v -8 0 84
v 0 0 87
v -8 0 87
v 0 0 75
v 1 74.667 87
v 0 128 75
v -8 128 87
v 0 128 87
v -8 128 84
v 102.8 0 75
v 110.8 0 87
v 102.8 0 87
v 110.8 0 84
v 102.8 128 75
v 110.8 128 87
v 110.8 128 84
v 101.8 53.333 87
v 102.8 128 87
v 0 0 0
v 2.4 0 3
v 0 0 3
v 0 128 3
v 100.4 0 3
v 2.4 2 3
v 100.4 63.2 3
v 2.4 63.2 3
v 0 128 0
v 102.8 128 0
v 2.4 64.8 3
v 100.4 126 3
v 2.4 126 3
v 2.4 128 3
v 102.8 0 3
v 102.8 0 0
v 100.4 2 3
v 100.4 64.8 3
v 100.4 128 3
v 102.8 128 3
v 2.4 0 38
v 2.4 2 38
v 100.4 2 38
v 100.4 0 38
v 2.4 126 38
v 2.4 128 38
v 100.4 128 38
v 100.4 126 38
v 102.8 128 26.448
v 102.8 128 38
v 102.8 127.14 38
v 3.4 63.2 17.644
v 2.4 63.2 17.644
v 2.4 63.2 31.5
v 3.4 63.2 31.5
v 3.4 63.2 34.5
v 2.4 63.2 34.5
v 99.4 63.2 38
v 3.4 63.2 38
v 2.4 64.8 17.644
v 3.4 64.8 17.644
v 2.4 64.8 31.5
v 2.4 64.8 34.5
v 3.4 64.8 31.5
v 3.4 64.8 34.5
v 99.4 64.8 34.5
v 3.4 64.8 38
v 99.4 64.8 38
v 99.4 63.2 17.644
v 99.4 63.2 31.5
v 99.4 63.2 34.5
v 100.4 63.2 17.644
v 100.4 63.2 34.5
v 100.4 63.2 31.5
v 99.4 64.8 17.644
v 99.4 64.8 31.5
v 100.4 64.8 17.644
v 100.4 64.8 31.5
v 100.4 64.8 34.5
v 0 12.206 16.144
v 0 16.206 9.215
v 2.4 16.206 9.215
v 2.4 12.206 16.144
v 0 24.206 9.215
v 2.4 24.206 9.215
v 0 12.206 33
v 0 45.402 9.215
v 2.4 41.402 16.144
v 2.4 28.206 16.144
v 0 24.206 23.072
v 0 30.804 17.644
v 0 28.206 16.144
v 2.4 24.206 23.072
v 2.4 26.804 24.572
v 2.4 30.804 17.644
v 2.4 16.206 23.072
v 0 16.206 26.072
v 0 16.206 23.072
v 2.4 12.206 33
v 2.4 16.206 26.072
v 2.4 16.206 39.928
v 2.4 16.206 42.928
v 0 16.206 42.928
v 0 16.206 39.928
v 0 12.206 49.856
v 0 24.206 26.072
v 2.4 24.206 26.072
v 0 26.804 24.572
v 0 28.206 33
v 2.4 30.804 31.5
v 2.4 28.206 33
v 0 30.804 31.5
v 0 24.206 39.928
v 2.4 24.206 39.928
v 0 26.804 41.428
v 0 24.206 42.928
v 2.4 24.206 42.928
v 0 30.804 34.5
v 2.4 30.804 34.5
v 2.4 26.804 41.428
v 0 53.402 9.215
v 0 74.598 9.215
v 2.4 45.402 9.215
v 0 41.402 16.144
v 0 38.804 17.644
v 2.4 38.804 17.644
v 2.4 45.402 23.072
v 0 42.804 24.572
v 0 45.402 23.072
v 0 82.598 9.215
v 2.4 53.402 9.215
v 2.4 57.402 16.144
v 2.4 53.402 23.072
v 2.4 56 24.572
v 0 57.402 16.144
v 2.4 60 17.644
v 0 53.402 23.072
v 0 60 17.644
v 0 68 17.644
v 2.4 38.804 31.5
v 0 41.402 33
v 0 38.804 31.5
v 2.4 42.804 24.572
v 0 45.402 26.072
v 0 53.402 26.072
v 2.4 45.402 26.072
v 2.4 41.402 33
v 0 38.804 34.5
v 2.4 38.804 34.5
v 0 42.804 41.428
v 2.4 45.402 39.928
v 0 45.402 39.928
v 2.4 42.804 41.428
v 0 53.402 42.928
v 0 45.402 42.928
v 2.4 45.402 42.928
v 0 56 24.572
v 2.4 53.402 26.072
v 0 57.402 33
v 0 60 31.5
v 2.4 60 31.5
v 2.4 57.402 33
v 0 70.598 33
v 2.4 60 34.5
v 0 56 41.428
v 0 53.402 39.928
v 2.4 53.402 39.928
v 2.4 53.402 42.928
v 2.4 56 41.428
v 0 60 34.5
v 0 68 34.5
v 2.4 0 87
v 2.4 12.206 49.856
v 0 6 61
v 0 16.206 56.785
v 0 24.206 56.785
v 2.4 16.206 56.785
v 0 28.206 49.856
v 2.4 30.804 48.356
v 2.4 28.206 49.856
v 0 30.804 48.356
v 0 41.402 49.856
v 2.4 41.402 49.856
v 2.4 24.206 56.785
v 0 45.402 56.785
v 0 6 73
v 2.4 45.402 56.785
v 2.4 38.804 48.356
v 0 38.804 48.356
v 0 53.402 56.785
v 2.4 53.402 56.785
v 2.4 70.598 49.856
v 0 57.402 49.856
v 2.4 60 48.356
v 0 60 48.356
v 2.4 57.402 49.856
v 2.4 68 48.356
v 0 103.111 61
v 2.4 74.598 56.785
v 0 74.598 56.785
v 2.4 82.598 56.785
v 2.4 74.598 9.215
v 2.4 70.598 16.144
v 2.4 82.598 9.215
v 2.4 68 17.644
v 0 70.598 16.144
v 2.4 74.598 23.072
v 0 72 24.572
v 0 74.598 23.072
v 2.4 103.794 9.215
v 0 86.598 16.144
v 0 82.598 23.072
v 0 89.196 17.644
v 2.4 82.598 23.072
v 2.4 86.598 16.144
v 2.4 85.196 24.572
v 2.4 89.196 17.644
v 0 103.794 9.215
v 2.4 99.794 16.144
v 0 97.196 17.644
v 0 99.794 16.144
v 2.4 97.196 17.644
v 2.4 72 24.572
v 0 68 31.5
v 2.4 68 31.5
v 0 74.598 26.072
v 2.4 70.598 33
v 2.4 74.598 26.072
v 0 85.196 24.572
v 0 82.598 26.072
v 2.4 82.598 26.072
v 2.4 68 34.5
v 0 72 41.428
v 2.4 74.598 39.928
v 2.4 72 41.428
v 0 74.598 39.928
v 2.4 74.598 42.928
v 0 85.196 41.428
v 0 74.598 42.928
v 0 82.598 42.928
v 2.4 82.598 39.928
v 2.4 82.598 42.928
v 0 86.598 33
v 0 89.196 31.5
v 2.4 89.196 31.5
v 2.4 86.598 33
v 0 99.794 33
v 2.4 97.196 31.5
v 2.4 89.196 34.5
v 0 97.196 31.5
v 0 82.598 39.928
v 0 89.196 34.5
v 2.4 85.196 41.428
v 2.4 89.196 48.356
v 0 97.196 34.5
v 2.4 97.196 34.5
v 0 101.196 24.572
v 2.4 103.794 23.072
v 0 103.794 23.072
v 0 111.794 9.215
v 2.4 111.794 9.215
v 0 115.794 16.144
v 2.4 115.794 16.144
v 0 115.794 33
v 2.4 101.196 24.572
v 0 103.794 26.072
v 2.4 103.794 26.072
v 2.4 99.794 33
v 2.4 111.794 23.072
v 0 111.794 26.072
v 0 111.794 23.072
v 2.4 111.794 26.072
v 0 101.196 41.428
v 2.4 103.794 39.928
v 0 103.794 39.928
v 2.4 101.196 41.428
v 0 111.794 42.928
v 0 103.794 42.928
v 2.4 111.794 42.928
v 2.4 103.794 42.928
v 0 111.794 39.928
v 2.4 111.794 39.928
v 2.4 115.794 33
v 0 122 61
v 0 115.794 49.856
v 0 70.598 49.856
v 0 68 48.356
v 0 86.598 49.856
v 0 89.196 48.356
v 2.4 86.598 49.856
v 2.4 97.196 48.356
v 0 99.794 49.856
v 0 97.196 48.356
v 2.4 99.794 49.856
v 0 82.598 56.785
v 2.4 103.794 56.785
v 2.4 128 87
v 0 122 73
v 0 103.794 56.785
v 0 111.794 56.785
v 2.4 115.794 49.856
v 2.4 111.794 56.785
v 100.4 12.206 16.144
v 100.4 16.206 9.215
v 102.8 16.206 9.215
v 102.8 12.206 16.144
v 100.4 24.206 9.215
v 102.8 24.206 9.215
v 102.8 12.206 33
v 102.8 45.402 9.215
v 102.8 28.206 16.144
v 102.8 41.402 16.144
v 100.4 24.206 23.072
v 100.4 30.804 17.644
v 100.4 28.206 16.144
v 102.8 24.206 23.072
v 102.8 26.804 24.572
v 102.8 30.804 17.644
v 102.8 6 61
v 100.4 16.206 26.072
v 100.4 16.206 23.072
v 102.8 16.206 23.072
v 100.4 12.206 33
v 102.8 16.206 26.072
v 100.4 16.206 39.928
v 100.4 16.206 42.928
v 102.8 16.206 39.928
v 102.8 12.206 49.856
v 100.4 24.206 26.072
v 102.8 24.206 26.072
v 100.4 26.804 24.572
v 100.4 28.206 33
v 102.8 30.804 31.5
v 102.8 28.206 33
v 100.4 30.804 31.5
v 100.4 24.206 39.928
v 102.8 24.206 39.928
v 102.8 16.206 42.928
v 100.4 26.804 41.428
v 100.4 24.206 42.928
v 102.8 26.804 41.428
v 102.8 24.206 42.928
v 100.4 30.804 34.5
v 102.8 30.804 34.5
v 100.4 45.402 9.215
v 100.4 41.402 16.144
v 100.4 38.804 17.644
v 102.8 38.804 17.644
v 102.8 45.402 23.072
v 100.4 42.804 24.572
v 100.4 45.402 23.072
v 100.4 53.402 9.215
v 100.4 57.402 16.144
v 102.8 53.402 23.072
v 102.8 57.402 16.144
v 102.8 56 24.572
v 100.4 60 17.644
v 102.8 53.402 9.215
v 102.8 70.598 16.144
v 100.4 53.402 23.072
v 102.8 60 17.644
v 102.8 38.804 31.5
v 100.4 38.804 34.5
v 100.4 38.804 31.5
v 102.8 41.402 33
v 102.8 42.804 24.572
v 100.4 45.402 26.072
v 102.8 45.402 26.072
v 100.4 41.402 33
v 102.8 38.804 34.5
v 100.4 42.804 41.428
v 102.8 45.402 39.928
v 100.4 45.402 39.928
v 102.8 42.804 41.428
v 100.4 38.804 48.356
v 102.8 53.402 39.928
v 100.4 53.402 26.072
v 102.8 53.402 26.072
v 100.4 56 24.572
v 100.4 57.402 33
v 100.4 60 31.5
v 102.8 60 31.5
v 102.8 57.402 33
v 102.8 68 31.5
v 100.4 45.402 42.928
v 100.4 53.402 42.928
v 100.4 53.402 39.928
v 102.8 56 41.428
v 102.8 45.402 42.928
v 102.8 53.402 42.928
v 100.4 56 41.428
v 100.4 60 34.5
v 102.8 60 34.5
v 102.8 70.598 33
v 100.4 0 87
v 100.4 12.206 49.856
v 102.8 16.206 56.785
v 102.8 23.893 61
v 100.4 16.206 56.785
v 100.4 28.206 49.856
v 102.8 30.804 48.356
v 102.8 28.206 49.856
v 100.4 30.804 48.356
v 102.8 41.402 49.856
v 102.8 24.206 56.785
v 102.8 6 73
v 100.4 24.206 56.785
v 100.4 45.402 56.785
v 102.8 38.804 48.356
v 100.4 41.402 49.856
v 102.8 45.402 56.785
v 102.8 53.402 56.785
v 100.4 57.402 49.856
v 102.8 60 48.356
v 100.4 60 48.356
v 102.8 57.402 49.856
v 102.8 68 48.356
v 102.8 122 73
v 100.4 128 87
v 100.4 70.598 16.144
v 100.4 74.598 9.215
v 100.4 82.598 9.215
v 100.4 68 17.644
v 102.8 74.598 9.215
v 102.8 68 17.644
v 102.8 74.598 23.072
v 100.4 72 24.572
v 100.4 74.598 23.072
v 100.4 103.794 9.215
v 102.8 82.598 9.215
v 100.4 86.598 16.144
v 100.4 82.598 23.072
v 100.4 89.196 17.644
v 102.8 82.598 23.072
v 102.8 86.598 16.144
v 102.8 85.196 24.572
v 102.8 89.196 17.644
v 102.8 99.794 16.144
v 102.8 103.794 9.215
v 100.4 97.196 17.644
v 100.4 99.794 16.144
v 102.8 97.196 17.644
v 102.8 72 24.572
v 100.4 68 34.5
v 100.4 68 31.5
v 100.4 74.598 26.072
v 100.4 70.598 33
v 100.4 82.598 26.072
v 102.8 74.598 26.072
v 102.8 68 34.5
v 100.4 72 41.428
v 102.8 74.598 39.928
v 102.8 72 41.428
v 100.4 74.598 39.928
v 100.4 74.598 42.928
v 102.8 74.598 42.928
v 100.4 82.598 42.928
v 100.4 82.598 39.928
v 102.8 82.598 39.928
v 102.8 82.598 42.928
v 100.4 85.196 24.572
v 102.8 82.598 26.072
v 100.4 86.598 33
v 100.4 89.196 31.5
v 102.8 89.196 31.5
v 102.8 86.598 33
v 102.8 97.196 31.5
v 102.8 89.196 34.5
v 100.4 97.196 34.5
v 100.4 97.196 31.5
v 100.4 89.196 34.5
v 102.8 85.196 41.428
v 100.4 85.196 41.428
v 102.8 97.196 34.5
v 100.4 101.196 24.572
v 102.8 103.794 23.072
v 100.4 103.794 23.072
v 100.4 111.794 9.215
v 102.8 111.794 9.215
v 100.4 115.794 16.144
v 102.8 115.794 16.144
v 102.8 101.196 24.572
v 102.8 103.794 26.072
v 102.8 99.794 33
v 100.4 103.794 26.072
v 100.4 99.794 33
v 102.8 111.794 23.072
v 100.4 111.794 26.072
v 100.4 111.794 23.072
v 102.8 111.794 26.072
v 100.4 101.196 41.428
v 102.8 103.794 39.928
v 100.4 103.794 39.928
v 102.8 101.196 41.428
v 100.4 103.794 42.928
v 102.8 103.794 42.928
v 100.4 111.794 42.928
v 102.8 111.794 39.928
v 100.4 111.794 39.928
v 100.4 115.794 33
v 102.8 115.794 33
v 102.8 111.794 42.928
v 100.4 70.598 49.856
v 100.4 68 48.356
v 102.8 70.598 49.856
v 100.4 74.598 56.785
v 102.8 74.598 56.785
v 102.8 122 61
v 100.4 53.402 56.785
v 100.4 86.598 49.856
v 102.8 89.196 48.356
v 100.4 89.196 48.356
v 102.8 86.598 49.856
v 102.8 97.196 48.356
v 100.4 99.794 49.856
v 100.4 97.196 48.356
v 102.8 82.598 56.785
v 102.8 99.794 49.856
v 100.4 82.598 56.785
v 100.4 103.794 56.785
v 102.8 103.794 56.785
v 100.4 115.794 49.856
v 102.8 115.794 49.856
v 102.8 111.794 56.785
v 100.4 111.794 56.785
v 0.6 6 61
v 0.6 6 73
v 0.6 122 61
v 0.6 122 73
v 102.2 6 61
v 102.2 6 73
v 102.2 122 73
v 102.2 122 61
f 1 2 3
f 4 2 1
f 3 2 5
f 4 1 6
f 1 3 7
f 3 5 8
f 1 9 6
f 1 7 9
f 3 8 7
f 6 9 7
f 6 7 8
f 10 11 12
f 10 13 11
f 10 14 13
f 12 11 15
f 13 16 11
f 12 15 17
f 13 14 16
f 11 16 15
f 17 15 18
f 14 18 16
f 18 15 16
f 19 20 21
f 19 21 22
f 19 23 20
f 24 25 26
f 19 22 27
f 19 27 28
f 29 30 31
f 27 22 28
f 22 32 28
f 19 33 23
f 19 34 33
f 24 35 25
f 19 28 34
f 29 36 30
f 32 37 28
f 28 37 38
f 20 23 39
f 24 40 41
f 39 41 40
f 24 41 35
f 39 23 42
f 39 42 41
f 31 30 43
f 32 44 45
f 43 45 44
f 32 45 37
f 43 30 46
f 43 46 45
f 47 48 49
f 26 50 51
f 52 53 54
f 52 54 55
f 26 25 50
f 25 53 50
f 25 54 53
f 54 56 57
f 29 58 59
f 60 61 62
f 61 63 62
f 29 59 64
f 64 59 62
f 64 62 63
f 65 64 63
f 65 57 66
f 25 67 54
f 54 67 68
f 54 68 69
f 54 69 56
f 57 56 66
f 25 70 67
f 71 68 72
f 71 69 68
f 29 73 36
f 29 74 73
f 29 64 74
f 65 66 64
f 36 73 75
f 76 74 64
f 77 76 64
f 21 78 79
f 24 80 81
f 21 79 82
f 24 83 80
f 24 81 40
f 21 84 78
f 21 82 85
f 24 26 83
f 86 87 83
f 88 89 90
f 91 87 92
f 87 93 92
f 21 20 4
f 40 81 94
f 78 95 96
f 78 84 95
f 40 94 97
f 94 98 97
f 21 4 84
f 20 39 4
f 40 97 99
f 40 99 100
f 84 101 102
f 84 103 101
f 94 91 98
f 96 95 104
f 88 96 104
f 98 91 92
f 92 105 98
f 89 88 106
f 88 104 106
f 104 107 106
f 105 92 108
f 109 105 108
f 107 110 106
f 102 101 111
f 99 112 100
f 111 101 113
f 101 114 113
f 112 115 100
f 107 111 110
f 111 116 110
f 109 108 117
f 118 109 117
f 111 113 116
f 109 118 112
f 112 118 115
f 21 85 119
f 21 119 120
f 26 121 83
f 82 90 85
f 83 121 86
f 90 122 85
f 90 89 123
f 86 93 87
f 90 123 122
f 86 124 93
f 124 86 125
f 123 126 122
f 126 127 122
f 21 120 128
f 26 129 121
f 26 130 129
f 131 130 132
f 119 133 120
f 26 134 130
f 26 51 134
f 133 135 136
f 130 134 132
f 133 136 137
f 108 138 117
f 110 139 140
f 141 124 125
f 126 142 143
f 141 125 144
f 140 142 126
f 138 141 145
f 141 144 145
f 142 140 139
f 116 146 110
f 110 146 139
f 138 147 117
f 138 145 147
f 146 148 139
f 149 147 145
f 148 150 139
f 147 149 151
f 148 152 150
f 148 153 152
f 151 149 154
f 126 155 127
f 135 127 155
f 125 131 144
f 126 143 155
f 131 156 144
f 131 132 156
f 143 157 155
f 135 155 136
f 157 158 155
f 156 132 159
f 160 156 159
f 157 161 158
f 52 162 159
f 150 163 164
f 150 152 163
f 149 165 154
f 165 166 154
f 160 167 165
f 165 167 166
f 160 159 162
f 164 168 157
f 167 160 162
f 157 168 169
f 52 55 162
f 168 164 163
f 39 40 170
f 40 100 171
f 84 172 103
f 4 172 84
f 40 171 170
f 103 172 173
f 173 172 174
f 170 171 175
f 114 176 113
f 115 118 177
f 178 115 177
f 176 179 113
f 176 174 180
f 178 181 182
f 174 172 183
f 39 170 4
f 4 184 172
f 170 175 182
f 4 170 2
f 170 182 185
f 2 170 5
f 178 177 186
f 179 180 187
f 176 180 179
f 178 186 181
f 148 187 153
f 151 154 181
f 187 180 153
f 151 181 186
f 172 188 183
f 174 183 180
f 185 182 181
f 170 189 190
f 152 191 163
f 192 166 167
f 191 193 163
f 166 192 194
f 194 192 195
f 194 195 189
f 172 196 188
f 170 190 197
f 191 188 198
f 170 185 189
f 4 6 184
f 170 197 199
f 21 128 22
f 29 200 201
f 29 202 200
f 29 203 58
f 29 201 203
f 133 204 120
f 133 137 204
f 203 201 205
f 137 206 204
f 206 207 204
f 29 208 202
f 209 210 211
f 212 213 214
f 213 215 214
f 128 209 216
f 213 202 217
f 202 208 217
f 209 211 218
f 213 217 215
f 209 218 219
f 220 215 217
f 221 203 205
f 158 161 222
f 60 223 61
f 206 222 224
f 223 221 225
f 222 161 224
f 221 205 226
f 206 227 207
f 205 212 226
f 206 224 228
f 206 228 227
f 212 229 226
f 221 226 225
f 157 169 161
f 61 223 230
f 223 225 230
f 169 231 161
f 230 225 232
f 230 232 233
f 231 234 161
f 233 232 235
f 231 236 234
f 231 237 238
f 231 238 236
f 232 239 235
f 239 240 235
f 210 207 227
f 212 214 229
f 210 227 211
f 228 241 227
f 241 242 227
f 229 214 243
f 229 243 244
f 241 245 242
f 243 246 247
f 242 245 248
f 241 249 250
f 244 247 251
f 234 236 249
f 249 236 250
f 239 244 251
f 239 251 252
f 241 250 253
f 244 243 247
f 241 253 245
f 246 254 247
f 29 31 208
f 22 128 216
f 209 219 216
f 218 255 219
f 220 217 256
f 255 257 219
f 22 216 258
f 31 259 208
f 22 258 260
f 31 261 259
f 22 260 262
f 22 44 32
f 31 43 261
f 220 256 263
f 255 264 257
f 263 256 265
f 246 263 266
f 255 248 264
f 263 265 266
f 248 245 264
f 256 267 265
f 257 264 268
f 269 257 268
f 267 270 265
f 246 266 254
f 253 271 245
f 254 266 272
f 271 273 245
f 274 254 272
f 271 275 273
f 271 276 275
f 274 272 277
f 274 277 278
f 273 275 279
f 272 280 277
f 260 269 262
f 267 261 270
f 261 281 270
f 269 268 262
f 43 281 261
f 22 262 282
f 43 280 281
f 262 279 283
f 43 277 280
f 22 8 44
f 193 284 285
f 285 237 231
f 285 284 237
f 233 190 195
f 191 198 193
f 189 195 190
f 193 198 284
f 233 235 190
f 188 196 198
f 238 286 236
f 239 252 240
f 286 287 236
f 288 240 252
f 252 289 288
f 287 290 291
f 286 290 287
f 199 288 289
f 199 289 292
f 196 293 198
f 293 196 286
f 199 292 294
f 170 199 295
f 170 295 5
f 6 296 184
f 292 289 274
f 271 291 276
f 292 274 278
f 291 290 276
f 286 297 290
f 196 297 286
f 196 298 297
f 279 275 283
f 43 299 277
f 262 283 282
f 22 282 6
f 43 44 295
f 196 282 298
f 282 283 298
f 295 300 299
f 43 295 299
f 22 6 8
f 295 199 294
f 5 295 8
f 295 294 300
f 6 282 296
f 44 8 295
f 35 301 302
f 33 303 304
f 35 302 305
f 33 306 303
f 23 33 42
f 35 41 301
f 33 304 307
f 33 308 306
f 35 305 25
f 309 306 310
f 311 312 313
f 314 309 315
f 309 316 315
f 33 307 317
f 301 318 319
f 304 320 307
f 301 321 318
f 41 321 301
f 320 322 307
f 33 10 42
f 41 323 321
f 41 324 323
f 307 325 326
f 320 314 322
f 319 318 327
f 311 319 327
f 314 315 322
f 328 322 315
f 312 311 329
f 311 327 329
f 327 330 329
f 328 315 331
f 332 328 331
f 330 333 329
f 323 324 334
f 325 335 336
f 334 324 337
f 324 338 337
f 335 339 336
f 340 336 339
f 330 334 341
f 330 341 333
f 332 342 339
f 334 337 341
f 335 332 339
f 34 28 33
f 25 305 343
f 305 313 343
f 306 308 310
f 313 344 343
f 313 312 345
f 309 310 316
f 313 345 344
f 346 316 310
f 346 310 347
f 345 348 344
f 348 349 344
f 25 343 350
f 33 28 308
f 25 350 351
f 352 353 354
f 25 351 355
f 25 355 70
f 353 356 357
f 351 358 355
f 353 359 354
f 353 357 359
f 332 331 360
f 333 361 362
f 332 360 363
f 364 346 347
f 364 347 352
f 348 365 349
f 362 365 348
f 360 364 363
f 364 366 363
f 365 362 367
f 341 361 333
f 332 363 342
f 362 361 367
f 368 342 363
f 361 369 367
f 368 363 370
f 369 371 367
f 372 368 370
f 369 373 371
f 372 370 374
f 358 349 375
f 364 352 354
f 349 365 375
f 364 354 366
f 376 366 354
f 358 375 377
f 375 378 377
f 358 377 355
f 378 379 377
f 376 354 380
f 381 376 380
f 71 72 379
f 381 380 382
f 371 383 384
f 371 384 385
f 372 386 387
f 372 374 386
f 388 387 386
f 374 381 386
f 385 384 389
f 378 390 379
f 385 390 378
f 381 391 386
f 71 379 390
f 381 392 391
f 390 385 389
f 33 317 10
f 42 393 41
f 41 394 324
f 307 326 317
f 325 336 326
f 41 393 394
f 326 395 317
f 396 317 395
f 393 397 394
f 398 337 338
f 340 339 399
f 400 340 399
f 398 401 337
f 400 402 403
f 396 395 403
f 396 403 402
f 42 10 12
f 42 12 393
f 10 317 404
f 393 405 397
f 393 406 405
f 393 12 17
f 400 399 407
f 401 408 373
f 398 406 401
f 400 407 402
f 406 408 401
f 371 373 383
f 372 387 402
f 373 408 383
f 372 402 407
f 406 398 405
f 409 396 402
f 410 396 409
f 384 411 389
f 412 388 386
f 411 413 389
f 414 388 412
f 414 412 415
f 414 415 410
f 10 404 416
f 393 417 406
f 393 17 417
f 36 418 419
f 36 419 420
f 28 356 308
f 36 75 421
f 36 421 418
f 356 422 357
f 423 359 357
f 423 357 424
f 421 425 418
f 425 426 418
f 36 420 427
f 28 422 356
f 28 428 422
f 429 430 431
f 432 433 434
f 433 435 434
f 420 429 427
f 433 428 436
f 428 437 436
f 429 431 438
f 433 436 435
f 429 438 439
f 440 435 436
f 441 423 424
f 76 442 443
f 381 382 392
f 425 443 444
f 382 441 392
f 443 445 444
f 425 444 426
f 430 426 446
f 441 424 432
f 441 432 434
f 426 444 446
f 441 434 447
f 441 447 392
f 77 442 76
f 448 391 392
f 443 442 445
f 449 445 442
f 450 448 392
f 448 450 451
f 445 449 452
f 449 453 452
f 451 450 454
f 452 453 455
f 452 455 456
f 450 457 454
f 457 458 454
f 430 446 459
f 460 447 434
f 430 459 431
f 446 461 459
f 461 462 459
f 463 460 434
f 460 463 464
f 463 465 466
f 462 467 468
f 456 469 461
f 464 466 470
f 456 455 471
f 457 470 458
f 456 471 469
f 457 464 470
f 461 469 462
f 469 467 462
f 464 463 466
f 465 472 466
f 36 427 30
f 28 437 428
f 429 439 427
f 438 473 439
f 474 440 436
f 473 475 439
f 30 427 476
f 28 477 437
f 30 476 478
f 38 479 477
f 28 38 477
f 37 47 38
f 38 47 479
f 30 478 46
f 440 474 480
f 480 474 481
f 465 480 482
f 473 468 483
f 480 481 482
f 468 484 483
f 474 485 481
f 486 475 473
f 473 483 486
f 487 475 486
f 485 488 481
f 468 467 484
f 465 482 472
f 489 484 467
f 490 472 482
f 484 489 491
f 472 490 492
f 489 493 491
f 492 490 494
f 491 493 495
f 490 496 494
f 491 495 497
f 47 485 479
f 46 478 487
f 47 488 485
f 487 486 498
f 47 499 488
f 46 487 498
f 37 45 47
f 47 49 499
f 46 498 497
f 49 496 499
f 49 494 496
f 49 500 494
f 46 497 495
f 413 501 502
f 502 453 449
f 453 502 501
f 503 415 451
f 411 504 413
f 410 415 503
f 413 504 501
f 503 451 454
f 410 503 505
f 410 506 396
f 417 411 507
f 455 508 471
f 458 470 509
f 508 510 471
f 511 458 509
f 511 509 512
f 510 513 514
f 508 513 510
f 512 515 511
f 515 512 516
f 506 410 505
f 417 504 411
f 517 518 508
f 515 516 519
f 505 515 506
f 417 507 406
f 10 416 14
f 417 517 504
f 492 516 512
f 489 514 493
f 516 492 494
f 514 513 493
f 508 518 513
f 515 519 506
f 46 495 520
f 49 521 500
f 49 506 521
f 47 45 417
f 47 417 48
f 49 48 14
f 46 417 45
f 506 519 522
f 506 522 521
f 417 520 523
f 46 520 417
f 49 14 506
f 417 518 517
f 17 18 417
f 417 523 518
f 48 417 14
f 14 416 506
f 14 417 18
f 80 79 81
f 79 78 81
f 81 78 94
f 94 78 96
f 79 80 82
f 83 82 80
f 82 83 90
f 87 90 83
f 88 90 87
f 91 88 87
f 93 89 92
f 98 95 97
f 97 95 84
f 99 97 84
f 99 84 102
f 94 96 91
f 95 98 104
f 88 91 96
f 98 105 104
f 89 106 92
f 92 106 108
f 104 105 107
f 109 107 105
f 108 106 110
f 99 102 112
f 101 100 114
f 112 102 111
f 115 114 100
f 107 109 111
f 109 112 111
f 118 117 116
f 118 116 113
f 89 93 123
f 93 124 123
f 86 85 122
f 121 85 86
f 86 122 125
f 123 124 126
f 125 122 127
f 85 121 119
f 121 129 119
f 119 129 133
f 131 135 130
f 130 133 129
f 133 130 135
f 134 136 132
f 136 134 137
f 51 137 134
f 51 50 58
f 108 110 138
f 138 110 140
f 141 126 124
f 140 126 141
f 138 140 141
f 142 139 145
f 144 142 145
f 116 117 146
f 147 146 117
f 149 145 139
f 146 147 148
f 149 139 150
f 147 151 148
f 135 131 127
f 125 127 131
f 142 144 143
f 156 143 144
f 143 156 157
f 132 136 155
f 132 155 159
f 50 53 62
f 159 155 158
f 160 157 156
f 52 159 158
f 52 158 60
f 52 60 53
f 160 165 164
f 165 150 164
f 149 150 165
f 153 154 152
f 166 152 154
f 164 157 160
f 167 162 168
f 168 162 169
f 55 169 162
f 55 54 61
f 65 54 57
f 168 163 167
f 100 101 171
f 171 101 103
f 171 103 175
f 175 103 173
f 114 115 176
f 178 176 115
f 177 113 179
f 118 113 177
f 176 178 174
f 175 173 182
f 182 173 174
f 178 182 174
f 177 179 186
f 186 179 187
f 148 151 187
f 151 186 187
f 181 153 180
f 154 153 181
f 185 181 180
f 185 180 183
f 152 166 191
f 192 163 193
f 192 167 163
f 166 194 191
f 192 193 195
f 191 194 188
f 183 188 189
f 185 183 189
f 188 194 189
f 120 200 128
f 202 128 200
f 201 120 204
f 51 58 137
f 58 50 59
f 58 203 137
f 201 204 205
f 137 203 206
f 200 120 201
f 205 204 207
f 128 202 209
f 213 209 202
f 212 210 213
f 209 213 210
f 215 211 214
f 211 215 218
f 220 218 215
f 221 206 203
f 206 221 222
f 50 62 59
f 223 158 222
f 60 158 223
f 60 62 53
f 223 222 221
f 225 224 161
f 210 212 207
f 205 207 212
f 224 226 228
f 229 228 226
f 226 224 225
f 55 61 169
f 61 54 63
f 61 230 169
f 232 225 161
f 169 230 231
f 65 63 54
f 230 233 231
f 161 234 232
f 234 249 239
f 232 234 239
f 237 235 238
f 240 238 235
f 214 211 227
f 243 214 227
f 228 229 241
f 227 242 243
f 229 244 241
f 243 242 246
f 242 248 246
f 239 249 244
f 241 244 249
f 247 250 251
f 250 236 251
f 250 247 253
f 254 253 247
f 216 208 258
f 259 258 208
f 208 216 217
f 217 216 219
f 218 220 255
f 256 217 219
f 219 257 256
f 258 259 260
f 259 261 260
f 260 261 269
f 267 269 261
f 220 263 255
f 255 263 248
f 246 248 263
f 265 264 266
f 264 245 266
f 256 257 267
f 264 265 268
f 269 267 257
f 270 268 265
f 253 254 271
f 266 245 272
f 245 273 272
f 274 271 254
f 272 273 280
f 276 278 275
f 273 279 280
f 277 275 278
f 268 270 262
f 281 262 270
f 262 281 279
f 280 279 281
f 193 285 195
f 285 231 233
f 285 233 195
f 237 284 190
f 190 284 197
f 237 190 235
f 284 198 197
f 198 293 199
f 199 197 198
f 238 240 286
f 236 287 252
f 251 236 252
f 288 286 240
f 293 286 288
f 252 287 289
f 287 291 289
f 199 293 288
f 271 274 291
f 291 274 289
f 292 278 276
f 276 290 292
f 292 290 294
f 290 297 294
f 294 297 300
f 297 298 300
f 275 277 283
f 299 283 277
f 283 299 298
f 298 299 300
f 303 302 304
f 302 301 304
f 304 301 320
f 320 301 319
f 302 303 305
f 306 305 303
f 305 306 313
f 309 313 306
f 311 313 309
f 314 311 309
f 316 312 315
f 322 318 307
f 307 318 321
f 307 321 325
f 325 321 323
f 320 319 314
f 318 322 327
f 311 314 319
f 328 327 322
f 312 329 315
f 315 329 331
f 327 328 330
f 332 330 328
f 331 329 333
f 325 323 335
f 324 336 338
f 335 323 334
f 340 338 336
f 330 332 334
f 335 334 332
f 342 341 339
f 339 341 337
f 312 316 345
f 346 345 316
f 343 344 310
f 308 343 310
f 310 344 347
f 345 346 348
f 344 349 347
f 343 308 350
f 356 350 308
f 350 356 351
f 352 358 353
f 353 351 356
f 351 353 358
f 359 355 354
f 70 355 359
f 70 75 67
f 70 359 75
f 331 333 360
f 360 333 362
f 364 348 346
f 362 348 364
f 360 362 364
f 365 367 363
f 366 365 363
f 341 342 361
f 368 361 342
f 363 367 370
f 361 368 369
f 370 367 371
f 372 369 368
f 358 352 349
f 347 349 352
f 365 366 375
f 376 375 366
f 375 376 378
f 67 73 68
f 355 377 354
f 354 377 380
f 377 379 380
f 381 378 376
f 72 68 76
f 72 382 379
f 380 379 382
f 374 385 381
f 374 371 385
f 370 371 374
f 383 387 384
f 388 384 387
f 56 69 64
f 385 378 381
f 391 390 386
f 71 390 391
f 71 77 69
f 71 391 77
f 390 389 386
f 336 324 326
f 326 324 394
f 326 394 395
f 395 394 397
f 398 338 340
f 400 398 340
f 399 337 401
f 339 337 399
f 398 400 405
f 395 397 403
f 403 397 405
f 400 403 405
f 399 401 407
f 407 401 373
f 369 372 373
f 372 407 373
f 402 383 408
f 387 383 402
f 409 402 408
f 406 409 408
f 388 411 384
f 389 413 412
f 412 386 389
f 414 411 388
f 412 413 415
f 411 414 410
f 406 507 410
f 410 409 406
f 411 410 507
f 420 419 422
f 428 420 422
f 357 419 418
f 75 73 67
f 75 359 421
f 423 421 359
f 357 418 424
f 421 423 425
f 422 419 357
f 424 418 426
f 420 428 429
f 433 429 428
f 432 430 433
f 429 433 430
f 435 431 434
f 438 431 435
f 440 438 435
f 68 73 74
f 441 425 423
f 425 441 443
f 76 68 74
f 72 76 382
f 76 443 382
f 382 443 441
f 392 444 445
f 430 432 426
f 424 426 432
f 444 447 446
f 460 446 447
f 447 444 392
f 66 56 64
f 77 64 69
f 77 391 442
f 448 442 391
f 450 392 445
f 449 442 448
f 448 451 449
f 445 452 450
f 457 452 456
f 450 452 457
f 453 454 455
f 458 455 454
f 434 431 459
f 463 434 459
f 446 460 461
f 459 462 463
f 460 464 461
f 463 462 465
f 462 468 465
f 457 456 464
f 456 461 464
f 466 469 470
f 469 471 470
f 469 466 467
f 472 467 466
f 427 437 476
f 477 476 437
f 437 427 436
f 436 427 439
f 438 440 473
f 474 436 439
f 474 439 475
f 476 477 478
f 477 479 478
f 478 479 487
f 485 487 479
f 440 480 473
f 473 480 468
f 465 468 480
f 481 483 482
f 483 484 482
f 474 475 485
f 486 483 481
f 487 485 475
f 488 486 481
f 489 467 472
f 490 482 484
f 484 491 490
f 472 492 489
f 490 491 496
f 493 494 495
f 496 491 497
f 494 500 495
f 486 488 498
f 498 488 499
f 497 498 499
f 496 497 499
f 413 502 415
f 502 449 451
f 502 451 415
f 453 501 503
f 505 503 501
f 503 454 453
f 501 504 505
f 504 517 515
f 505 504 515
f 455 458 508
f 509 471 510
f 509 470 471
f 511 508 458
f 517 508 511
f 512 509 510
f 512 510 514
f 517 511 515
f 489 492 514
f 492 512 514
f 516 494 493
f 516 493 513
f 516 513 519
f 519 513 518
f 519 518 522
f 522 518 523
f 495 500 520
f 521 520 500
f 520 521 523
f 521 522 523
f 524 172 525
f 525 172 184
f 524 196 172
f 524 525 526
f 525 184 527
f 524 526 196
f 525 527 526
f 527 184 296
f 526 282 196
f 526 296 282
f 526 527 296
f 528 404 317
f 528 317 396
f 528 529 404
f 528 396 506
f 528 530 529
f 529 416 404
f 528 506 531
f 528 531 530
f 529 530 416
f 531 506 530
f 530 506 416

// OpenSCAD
// file: patterns.scad
// Wall opening patterns for Coin Vault parts. Every pattern is a set of 2D holes
// in a (u, v) zone: u runs along the wall, v is up (the print's Z), so overhangs
// are judged against v. Shared by coin_vault.scad and slab_tray.scad.
//
//   xbrace   : diamonds + triangles (Warren truss). Triangle tops are flat bridges.
//   hex      : flat-top honeycomb. Tops are short bridges (one hex side).
//   diamond  : diamonds only, 45 deg everywhere, no bridges at all.
//   teardrop : round holes with a 45 deg point on top, no bridges.
//   solid    : nothing.

// X-brace (Warren) truss: a row of diamonds with triangles between them.
module pat_xbrace_row(u0, u1, v0, v1, web) {
    a = (v1 - v0) / 2;
    vc = v0 + a;
    p = 2 * a + web * sqrt(2);
    n = floor((u1 - u0 - 2 * a) / p) + 1;
    uc = (u0 + u1) / 2 - (n - 1) * p / 2;
    d = web / sqrt(2);
    for (i = [0:n - 1]) translate([uc + i * p, vc]) polygon([[a, 0], [0, a], [-a, 0], [0, -a]]);
    for (i = [0:n - 2]) let(um = uc + (i + 0.5) * p, w = a - d) {
        polygon([[um, vc + d], [um + w, vc + a], [um - w, vc + a]]);
        polygon([[um, vc - d], [um - w, vc - a], [um + w, vc - a]]);
    }
}

// Diamonds only: the web between neighbours is narrowest (= web) at mid-height.
module pat_diamond_row(u0, u1, v0, v1, web) {
    a = (v1 - v0) / 2;
    vc = v0 + a;
    p = 2 * a + web;
    n = floor((u1 - u0 - 2 * a) / p) + 1;
    uc = (u0 + u1) / 2 - (n - 1) * p / 2;
    for (i = [0:n - 1]) translate([uc + i * p, vc]) polygon([[a, 0], [0, a], [-a, 0], [0, -a]]);
}

// Rows stacked with a solid web between tiers, so struts stay short on tall walls.
module pat_tiers(u0, u1, v0, v1, web, cell, kind) {
    tiers = max(1, round((v1 - v0) / cell));
    th = (v1 - v0 - (tiers - 1) * web) / tiers;
    for (k = [0:tiers - 1]) let(t0 = v0 + k * (th + web)) {
        if (kind == "xbrace") pat_xbrace_row(u0, u1, t0, t0 + th, web);
        else pat_diamond_row(u0, u1, t0, t0 + th, web);
    }
}

// Staggered grid of a cell shape of half-width hw and half-height hh, only whole cells.
module pat_grid(u0, u1, v0, v1, hw, hh, dx, dz) {
    nx = floor((u1 - u0 - 2 * hw) / dx) + 1;
    us = (u0 + u1) / 2 - (nx - 1) * dx / 2;
    nz = floor((v1 - v0 - 2 * hh) / dz) + 1;          // rows that fit unstaggered
    vs = (v0 + v1) / 2 - (nz - 1) * dz / 2;
    stag = (v1 - v0) >= 2 * hh + dz / 2 + 0.01;       // room for an offset row?
    for (i = [0:nx - 1], j = [0:nz - 1])
        let(u = us + i * dx, v = vs + j * dz + (stag && i % 2 == 1 ? dz / 2 : 0))
            if (v - hh >= v0 - 0.01 && v + hh <= v1 + 0.01) translate([u, v]) children();
}

module hex_cell(r) circle(r, $fn = 6);       // vertex at +u: flat top and bottom
module teardrop_cell(r) hull() { circle(r, $fn = 48); translate([0, r * sqrt(2)]) square(0.01, center = true); }

module wall_pattern_2d(kind, u0, u1, v0, v1, web, cell) {
    if (kind == "xbrace" || kind == "diamond") pat_tiers(u0, u1, v0, v1, web, cell, kind);
    else if (kind == "hex") {
        r = min(cell / 2, (v1 - v0) / sqrt(3));
        R = r + web / sqrt(3);
        hh = sqrt(3) / 2 * r;
        stag = (v1 - v0) >= 2 * hh + sqrt(3) * R / 2;
        // honeycomb spacing when columns can stagger, else a single row side by side
        pat_grid(u0, u1, v0, v1, r, hh, stag ? 1.5 * R : 2 * r + web, sqrt(3) * R) hex_cell(r);
    }
    else if (kind == "teardrop") {
        r = min(cell / 2 * 0.8, (v1 - v0) / (1 + sqrt(2)));
        hh = r * (1 + sqrt(2)) / 2;                    // cell spans -r .. r*sqrt2 about its centre
        pat_grid(u0, u1, v0, v1, r, hh, 2 * r + web, 2 * hh + web)
            translate([0, -(r * sqrt(2) - r) / 2]) teardrop_cell(r);
    }
}
// main file
// Coin Vault: slab tray for 90 x 60 mm copper slabs (5 oz).
// Slabs stand on their long edge, face to face, like files. A sliding bookend
// holds a part-full row upright. Not a stacking part: no posts, pins or lid.
// Axes: X = along a row (slab faces point along X), Y = across rows, Z = up.
// Prints as modelled, no supports.

/* [Part] */
part = "tray"; // [tray, bookend, preview]

/* [Slab] */
slab_long = 90;  // capsule outside size
slab_short = 60;
orientation = "portrait"; // [portrait:Portrait - stands on the 60 edge, 90 tall, landscape:Landscape - stands on the 90 edge, 60 tall]
slab_t = 3.2;    // 5 oz copper at 90 x 60 = 3.2 mm. Measure yours and set it here
slab_g = 155.5;  // weight, for the echo only

/* [Layout] */
rows = 2;        // [1:1:3]
per_row = 30;    // [5:1:60] 30 x 2 = ~9.3 kg full: same carrying weight as a 5 oz coin tray
row_clr = 2.0;   // slack along a full row (slab thickness varies a little)
clr_w = 1.2;     // clearance across the row

/* [Structure] */
floor_t = 3.0;   // only loaded while carried by the handles: 0.29 mm then (2.4 mm would be 0.52)
side = 2.0;      // long side walls
// side_h is ~42% of the standing height: low enough to push a slab up by its side edge
spine = 1.6;     // divider between rows
end_t = 2.4;     // end walls, carry the load when lifted by the handles
handle = 8;      // handle ledge depth, 45 deg gusset underneath
ledge_t = 3;
label_d = 0.6;
label_h = 12;
strut = 2.0;     // solid band above the floor before any opening
end_pattern = "hex"; // [hex, diamond, teardrop, xbrace, solid] end walls (see patterns.scad)
web = 3.0;       // minimum material between openings
cell = 16;       // nominal opening size

/* [Bookend] */
book_t = 2.4;
foot_t = 1.0;
foot_slabs = 6;  // slabs that stand on the foot and hold it down

/* [Hidden] */
include <patterns.scad>
eps = 0.01;
slab_w = orientation == "portrait" ? slab_short : slab_long;   // edge it stands on
slab_h = orientation == "portrait" ? slab_long : slab_short;   // standing height
side_h = round(0.42 * slab_h);
row_w = slab_w + clr_w;
l_in = per_row * slab_t + row_clr;
W = rows * row_w + (rows - 1) * spine + 2 * side;
H = floor_t + slab_h - 6;        // end walls: top 6 mm of the slabs stays exposed to grab
X0 = 0;
X1 = l_in + 2 * end_t;

function row_y0(r) = side + r * (row_w + spine);
function row_yc(r) = row_y0(r) + row_w / 2;

module box(a, b) translate(a) cube(b - a);
module yz_extrude(x0, x1) multmatrix([[0, 0, 1, x0], [1, 0, 0, 0], [0, 1, 0, 0]]) linear_extrude(x1 - x0) children();

label_z1 = H - ledge_t - handle - 3;
label_z0 = label_z1 - label_h;
end_v0 = floor_t + strut + 2;
end_v1 = label_z0 - strut;
module end_holes() wall_pattern_2d(end_pattern, side + web, W - side - web, end_v0, end_v1, web, cell);

// Handle ledge: flange flush at the top, 45 deg gusset below. 3D hull, not a 2D
// polygon (OpenSCAD's 2D grid snapping breaks coplanar faces).
module ledge(xw, sgn) {
    xi = xw - sgn * 1;
    hull() {
        box([min(xi, xw + sgn * handle), 0, H - ledge_t], [max(xi, xw + sgn * handle), W, H]);
        box([min(xi, xw), 0, H - ledge_t - handle - 1], [max(xi, xw), W, H]);
    }
}

module tray() {
    spines = [for (r = [1:1:rows - 1]) row_y0(r) - spine];
    difference() {
        union() {
            box([X0, 0, 0], [X1, W, floor_t]);
            box([X0, 0, 0], [X1, side, side_h]);
            box([X0, W - side, 0], [X1, W, side_h]);
            for (y = spines) box([X0, y, 0], [X1, y + spine, side_h]);
            box([X0, 0, 0], [X0 + end_t, W, H]);
            box([X1 - end_t, 0, 0], [X1, W, H]);
            ledge(X0, -1);
            ledge(X1, 1);
        }
        if (end_pattern != "solid") {
            yz_extrude(X0 - 1, X0 + end_t + 1) end_holes();
            yz_extrude(X1 - end_t - 1, X1 + 1) end_holes();
        }
        box([X0 - 1, side + 4, label_z0], [X0 + label_d, W - side - 4, label_z1]);
        box([X1 - label_d, side + 4, label_z0], [X1 + 1, W - side - 4, label_z1]);
    }
}

// Sliding bookend in use position: plate face at x = 0, slabs on +X standing on
// the flat foot. Their weight pins it down.
module bookend_in_place() {
    bw = row_w - 1.0;
    plate_h = 0.7 * slab_h;
    foot_l = foot_slabs * slab_t + book_t;
    difference() {
        union() {
            box([-book_t, -bw / 2, floor_t], [0, bw / 2, floor_t + plate_h]);
            box([-book_t, -bw / 2 + 4, floor_t], [foot_l, bw / 2 - 4, floor_t + foot_t]);
        }
        // finger hole to slide it along
        translate([-book_t - 1, 0, floor_t + 0.62 * plate_h])
            multmatrix([[0, 0, 1, 0], [0, 1, 0, 0], [-1, 0, 0, 0]]) cylinder(h = book_t + 2, r = 9, $fn = 64);
    }
}

// Print orientation: plate flat on the bed, foot standing up.
module bookend() multmatrix([[0, 1, 0, 0], [0, 0, 1, -floor_t], [1, 0, 0, book_t]]) bookend_in_place();

module slabs(n)
    for (r = [0:rows - 1], i = [0:n - 1])
        translate([X0 + end_t + 0.3 + i * slab_t, row_yc(r) - slab_w / 2, floor_t + 0.05])
            cube([slab_t - 0.1, slab_w, slab_h]);

echo(str("slab tray: ", rows, " x ", per_row, " = ", rows * per_row, " slabs, ",
         rows * per_row * slab_g / 1000, " kg full, tray ", X1 - X0 + 2 * handle, " x ", W, " x ", H));

if (part == "tray") tray();
else if (part == "bookend") bookend();
else {
    color("Peru") tray();
    color("Chocolate") slabs(per_row);
}
